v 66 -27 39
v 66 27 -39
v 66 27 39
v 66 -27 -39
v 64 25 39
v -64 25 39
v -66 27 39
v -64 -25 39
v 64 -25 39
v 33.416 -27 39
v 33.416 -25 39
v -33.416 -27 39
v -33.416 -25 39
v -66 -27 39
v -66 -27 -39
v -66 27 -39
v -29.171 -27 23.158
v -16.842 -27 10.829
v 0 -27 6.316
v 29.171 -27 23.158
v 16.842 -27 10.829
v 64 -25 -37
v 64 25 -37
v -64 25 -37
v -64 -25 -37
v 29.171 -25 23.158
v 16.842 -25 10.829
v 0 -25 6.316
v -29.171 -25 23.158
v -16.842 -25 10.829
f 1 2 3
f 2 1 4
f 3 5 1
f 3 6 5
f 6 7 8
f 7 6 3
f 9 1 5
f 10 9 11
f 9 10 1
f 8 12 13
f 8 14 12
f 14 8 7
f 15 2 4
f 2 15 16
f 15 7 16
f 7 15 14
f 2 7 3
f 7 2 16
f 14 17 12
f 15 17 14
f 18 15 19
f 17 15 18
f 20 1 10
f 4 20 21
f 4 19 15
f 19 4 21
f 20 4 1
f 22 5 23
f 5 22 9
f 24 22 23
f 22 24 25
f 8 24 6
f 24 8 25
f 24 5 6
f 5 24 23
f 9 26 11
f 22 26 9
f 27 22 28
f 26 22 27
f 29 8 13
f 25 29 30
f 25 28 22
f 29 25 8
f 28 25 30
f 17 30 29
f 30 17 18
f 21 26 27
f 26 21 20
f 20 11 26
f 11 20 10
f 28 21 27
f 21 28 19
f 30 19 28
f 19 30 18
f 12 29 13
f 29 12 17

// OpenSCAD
// index35.scad

// unit is mm

//lew = 0.2 * 2; // leeway
thi = 2.0; // thickness

hei = 76;
len = 128;
dep = 50;


difference() {

  cube(size=[ len + 2 * thi, dep + 2 * thi, hei + 1 * thi ], center=true);

  translate([ 0, 0, thi ]) cube(size=[ len, dep, hei + thi ], center=true);

  translate([ 0, -dep / 2 - thi / 2, hei / 1.9 ])
    rotate([ 90, 0, 0 ])
      cylinder(d=len / 1.9, h = thi * 2, center=true, $fn=12);
}
